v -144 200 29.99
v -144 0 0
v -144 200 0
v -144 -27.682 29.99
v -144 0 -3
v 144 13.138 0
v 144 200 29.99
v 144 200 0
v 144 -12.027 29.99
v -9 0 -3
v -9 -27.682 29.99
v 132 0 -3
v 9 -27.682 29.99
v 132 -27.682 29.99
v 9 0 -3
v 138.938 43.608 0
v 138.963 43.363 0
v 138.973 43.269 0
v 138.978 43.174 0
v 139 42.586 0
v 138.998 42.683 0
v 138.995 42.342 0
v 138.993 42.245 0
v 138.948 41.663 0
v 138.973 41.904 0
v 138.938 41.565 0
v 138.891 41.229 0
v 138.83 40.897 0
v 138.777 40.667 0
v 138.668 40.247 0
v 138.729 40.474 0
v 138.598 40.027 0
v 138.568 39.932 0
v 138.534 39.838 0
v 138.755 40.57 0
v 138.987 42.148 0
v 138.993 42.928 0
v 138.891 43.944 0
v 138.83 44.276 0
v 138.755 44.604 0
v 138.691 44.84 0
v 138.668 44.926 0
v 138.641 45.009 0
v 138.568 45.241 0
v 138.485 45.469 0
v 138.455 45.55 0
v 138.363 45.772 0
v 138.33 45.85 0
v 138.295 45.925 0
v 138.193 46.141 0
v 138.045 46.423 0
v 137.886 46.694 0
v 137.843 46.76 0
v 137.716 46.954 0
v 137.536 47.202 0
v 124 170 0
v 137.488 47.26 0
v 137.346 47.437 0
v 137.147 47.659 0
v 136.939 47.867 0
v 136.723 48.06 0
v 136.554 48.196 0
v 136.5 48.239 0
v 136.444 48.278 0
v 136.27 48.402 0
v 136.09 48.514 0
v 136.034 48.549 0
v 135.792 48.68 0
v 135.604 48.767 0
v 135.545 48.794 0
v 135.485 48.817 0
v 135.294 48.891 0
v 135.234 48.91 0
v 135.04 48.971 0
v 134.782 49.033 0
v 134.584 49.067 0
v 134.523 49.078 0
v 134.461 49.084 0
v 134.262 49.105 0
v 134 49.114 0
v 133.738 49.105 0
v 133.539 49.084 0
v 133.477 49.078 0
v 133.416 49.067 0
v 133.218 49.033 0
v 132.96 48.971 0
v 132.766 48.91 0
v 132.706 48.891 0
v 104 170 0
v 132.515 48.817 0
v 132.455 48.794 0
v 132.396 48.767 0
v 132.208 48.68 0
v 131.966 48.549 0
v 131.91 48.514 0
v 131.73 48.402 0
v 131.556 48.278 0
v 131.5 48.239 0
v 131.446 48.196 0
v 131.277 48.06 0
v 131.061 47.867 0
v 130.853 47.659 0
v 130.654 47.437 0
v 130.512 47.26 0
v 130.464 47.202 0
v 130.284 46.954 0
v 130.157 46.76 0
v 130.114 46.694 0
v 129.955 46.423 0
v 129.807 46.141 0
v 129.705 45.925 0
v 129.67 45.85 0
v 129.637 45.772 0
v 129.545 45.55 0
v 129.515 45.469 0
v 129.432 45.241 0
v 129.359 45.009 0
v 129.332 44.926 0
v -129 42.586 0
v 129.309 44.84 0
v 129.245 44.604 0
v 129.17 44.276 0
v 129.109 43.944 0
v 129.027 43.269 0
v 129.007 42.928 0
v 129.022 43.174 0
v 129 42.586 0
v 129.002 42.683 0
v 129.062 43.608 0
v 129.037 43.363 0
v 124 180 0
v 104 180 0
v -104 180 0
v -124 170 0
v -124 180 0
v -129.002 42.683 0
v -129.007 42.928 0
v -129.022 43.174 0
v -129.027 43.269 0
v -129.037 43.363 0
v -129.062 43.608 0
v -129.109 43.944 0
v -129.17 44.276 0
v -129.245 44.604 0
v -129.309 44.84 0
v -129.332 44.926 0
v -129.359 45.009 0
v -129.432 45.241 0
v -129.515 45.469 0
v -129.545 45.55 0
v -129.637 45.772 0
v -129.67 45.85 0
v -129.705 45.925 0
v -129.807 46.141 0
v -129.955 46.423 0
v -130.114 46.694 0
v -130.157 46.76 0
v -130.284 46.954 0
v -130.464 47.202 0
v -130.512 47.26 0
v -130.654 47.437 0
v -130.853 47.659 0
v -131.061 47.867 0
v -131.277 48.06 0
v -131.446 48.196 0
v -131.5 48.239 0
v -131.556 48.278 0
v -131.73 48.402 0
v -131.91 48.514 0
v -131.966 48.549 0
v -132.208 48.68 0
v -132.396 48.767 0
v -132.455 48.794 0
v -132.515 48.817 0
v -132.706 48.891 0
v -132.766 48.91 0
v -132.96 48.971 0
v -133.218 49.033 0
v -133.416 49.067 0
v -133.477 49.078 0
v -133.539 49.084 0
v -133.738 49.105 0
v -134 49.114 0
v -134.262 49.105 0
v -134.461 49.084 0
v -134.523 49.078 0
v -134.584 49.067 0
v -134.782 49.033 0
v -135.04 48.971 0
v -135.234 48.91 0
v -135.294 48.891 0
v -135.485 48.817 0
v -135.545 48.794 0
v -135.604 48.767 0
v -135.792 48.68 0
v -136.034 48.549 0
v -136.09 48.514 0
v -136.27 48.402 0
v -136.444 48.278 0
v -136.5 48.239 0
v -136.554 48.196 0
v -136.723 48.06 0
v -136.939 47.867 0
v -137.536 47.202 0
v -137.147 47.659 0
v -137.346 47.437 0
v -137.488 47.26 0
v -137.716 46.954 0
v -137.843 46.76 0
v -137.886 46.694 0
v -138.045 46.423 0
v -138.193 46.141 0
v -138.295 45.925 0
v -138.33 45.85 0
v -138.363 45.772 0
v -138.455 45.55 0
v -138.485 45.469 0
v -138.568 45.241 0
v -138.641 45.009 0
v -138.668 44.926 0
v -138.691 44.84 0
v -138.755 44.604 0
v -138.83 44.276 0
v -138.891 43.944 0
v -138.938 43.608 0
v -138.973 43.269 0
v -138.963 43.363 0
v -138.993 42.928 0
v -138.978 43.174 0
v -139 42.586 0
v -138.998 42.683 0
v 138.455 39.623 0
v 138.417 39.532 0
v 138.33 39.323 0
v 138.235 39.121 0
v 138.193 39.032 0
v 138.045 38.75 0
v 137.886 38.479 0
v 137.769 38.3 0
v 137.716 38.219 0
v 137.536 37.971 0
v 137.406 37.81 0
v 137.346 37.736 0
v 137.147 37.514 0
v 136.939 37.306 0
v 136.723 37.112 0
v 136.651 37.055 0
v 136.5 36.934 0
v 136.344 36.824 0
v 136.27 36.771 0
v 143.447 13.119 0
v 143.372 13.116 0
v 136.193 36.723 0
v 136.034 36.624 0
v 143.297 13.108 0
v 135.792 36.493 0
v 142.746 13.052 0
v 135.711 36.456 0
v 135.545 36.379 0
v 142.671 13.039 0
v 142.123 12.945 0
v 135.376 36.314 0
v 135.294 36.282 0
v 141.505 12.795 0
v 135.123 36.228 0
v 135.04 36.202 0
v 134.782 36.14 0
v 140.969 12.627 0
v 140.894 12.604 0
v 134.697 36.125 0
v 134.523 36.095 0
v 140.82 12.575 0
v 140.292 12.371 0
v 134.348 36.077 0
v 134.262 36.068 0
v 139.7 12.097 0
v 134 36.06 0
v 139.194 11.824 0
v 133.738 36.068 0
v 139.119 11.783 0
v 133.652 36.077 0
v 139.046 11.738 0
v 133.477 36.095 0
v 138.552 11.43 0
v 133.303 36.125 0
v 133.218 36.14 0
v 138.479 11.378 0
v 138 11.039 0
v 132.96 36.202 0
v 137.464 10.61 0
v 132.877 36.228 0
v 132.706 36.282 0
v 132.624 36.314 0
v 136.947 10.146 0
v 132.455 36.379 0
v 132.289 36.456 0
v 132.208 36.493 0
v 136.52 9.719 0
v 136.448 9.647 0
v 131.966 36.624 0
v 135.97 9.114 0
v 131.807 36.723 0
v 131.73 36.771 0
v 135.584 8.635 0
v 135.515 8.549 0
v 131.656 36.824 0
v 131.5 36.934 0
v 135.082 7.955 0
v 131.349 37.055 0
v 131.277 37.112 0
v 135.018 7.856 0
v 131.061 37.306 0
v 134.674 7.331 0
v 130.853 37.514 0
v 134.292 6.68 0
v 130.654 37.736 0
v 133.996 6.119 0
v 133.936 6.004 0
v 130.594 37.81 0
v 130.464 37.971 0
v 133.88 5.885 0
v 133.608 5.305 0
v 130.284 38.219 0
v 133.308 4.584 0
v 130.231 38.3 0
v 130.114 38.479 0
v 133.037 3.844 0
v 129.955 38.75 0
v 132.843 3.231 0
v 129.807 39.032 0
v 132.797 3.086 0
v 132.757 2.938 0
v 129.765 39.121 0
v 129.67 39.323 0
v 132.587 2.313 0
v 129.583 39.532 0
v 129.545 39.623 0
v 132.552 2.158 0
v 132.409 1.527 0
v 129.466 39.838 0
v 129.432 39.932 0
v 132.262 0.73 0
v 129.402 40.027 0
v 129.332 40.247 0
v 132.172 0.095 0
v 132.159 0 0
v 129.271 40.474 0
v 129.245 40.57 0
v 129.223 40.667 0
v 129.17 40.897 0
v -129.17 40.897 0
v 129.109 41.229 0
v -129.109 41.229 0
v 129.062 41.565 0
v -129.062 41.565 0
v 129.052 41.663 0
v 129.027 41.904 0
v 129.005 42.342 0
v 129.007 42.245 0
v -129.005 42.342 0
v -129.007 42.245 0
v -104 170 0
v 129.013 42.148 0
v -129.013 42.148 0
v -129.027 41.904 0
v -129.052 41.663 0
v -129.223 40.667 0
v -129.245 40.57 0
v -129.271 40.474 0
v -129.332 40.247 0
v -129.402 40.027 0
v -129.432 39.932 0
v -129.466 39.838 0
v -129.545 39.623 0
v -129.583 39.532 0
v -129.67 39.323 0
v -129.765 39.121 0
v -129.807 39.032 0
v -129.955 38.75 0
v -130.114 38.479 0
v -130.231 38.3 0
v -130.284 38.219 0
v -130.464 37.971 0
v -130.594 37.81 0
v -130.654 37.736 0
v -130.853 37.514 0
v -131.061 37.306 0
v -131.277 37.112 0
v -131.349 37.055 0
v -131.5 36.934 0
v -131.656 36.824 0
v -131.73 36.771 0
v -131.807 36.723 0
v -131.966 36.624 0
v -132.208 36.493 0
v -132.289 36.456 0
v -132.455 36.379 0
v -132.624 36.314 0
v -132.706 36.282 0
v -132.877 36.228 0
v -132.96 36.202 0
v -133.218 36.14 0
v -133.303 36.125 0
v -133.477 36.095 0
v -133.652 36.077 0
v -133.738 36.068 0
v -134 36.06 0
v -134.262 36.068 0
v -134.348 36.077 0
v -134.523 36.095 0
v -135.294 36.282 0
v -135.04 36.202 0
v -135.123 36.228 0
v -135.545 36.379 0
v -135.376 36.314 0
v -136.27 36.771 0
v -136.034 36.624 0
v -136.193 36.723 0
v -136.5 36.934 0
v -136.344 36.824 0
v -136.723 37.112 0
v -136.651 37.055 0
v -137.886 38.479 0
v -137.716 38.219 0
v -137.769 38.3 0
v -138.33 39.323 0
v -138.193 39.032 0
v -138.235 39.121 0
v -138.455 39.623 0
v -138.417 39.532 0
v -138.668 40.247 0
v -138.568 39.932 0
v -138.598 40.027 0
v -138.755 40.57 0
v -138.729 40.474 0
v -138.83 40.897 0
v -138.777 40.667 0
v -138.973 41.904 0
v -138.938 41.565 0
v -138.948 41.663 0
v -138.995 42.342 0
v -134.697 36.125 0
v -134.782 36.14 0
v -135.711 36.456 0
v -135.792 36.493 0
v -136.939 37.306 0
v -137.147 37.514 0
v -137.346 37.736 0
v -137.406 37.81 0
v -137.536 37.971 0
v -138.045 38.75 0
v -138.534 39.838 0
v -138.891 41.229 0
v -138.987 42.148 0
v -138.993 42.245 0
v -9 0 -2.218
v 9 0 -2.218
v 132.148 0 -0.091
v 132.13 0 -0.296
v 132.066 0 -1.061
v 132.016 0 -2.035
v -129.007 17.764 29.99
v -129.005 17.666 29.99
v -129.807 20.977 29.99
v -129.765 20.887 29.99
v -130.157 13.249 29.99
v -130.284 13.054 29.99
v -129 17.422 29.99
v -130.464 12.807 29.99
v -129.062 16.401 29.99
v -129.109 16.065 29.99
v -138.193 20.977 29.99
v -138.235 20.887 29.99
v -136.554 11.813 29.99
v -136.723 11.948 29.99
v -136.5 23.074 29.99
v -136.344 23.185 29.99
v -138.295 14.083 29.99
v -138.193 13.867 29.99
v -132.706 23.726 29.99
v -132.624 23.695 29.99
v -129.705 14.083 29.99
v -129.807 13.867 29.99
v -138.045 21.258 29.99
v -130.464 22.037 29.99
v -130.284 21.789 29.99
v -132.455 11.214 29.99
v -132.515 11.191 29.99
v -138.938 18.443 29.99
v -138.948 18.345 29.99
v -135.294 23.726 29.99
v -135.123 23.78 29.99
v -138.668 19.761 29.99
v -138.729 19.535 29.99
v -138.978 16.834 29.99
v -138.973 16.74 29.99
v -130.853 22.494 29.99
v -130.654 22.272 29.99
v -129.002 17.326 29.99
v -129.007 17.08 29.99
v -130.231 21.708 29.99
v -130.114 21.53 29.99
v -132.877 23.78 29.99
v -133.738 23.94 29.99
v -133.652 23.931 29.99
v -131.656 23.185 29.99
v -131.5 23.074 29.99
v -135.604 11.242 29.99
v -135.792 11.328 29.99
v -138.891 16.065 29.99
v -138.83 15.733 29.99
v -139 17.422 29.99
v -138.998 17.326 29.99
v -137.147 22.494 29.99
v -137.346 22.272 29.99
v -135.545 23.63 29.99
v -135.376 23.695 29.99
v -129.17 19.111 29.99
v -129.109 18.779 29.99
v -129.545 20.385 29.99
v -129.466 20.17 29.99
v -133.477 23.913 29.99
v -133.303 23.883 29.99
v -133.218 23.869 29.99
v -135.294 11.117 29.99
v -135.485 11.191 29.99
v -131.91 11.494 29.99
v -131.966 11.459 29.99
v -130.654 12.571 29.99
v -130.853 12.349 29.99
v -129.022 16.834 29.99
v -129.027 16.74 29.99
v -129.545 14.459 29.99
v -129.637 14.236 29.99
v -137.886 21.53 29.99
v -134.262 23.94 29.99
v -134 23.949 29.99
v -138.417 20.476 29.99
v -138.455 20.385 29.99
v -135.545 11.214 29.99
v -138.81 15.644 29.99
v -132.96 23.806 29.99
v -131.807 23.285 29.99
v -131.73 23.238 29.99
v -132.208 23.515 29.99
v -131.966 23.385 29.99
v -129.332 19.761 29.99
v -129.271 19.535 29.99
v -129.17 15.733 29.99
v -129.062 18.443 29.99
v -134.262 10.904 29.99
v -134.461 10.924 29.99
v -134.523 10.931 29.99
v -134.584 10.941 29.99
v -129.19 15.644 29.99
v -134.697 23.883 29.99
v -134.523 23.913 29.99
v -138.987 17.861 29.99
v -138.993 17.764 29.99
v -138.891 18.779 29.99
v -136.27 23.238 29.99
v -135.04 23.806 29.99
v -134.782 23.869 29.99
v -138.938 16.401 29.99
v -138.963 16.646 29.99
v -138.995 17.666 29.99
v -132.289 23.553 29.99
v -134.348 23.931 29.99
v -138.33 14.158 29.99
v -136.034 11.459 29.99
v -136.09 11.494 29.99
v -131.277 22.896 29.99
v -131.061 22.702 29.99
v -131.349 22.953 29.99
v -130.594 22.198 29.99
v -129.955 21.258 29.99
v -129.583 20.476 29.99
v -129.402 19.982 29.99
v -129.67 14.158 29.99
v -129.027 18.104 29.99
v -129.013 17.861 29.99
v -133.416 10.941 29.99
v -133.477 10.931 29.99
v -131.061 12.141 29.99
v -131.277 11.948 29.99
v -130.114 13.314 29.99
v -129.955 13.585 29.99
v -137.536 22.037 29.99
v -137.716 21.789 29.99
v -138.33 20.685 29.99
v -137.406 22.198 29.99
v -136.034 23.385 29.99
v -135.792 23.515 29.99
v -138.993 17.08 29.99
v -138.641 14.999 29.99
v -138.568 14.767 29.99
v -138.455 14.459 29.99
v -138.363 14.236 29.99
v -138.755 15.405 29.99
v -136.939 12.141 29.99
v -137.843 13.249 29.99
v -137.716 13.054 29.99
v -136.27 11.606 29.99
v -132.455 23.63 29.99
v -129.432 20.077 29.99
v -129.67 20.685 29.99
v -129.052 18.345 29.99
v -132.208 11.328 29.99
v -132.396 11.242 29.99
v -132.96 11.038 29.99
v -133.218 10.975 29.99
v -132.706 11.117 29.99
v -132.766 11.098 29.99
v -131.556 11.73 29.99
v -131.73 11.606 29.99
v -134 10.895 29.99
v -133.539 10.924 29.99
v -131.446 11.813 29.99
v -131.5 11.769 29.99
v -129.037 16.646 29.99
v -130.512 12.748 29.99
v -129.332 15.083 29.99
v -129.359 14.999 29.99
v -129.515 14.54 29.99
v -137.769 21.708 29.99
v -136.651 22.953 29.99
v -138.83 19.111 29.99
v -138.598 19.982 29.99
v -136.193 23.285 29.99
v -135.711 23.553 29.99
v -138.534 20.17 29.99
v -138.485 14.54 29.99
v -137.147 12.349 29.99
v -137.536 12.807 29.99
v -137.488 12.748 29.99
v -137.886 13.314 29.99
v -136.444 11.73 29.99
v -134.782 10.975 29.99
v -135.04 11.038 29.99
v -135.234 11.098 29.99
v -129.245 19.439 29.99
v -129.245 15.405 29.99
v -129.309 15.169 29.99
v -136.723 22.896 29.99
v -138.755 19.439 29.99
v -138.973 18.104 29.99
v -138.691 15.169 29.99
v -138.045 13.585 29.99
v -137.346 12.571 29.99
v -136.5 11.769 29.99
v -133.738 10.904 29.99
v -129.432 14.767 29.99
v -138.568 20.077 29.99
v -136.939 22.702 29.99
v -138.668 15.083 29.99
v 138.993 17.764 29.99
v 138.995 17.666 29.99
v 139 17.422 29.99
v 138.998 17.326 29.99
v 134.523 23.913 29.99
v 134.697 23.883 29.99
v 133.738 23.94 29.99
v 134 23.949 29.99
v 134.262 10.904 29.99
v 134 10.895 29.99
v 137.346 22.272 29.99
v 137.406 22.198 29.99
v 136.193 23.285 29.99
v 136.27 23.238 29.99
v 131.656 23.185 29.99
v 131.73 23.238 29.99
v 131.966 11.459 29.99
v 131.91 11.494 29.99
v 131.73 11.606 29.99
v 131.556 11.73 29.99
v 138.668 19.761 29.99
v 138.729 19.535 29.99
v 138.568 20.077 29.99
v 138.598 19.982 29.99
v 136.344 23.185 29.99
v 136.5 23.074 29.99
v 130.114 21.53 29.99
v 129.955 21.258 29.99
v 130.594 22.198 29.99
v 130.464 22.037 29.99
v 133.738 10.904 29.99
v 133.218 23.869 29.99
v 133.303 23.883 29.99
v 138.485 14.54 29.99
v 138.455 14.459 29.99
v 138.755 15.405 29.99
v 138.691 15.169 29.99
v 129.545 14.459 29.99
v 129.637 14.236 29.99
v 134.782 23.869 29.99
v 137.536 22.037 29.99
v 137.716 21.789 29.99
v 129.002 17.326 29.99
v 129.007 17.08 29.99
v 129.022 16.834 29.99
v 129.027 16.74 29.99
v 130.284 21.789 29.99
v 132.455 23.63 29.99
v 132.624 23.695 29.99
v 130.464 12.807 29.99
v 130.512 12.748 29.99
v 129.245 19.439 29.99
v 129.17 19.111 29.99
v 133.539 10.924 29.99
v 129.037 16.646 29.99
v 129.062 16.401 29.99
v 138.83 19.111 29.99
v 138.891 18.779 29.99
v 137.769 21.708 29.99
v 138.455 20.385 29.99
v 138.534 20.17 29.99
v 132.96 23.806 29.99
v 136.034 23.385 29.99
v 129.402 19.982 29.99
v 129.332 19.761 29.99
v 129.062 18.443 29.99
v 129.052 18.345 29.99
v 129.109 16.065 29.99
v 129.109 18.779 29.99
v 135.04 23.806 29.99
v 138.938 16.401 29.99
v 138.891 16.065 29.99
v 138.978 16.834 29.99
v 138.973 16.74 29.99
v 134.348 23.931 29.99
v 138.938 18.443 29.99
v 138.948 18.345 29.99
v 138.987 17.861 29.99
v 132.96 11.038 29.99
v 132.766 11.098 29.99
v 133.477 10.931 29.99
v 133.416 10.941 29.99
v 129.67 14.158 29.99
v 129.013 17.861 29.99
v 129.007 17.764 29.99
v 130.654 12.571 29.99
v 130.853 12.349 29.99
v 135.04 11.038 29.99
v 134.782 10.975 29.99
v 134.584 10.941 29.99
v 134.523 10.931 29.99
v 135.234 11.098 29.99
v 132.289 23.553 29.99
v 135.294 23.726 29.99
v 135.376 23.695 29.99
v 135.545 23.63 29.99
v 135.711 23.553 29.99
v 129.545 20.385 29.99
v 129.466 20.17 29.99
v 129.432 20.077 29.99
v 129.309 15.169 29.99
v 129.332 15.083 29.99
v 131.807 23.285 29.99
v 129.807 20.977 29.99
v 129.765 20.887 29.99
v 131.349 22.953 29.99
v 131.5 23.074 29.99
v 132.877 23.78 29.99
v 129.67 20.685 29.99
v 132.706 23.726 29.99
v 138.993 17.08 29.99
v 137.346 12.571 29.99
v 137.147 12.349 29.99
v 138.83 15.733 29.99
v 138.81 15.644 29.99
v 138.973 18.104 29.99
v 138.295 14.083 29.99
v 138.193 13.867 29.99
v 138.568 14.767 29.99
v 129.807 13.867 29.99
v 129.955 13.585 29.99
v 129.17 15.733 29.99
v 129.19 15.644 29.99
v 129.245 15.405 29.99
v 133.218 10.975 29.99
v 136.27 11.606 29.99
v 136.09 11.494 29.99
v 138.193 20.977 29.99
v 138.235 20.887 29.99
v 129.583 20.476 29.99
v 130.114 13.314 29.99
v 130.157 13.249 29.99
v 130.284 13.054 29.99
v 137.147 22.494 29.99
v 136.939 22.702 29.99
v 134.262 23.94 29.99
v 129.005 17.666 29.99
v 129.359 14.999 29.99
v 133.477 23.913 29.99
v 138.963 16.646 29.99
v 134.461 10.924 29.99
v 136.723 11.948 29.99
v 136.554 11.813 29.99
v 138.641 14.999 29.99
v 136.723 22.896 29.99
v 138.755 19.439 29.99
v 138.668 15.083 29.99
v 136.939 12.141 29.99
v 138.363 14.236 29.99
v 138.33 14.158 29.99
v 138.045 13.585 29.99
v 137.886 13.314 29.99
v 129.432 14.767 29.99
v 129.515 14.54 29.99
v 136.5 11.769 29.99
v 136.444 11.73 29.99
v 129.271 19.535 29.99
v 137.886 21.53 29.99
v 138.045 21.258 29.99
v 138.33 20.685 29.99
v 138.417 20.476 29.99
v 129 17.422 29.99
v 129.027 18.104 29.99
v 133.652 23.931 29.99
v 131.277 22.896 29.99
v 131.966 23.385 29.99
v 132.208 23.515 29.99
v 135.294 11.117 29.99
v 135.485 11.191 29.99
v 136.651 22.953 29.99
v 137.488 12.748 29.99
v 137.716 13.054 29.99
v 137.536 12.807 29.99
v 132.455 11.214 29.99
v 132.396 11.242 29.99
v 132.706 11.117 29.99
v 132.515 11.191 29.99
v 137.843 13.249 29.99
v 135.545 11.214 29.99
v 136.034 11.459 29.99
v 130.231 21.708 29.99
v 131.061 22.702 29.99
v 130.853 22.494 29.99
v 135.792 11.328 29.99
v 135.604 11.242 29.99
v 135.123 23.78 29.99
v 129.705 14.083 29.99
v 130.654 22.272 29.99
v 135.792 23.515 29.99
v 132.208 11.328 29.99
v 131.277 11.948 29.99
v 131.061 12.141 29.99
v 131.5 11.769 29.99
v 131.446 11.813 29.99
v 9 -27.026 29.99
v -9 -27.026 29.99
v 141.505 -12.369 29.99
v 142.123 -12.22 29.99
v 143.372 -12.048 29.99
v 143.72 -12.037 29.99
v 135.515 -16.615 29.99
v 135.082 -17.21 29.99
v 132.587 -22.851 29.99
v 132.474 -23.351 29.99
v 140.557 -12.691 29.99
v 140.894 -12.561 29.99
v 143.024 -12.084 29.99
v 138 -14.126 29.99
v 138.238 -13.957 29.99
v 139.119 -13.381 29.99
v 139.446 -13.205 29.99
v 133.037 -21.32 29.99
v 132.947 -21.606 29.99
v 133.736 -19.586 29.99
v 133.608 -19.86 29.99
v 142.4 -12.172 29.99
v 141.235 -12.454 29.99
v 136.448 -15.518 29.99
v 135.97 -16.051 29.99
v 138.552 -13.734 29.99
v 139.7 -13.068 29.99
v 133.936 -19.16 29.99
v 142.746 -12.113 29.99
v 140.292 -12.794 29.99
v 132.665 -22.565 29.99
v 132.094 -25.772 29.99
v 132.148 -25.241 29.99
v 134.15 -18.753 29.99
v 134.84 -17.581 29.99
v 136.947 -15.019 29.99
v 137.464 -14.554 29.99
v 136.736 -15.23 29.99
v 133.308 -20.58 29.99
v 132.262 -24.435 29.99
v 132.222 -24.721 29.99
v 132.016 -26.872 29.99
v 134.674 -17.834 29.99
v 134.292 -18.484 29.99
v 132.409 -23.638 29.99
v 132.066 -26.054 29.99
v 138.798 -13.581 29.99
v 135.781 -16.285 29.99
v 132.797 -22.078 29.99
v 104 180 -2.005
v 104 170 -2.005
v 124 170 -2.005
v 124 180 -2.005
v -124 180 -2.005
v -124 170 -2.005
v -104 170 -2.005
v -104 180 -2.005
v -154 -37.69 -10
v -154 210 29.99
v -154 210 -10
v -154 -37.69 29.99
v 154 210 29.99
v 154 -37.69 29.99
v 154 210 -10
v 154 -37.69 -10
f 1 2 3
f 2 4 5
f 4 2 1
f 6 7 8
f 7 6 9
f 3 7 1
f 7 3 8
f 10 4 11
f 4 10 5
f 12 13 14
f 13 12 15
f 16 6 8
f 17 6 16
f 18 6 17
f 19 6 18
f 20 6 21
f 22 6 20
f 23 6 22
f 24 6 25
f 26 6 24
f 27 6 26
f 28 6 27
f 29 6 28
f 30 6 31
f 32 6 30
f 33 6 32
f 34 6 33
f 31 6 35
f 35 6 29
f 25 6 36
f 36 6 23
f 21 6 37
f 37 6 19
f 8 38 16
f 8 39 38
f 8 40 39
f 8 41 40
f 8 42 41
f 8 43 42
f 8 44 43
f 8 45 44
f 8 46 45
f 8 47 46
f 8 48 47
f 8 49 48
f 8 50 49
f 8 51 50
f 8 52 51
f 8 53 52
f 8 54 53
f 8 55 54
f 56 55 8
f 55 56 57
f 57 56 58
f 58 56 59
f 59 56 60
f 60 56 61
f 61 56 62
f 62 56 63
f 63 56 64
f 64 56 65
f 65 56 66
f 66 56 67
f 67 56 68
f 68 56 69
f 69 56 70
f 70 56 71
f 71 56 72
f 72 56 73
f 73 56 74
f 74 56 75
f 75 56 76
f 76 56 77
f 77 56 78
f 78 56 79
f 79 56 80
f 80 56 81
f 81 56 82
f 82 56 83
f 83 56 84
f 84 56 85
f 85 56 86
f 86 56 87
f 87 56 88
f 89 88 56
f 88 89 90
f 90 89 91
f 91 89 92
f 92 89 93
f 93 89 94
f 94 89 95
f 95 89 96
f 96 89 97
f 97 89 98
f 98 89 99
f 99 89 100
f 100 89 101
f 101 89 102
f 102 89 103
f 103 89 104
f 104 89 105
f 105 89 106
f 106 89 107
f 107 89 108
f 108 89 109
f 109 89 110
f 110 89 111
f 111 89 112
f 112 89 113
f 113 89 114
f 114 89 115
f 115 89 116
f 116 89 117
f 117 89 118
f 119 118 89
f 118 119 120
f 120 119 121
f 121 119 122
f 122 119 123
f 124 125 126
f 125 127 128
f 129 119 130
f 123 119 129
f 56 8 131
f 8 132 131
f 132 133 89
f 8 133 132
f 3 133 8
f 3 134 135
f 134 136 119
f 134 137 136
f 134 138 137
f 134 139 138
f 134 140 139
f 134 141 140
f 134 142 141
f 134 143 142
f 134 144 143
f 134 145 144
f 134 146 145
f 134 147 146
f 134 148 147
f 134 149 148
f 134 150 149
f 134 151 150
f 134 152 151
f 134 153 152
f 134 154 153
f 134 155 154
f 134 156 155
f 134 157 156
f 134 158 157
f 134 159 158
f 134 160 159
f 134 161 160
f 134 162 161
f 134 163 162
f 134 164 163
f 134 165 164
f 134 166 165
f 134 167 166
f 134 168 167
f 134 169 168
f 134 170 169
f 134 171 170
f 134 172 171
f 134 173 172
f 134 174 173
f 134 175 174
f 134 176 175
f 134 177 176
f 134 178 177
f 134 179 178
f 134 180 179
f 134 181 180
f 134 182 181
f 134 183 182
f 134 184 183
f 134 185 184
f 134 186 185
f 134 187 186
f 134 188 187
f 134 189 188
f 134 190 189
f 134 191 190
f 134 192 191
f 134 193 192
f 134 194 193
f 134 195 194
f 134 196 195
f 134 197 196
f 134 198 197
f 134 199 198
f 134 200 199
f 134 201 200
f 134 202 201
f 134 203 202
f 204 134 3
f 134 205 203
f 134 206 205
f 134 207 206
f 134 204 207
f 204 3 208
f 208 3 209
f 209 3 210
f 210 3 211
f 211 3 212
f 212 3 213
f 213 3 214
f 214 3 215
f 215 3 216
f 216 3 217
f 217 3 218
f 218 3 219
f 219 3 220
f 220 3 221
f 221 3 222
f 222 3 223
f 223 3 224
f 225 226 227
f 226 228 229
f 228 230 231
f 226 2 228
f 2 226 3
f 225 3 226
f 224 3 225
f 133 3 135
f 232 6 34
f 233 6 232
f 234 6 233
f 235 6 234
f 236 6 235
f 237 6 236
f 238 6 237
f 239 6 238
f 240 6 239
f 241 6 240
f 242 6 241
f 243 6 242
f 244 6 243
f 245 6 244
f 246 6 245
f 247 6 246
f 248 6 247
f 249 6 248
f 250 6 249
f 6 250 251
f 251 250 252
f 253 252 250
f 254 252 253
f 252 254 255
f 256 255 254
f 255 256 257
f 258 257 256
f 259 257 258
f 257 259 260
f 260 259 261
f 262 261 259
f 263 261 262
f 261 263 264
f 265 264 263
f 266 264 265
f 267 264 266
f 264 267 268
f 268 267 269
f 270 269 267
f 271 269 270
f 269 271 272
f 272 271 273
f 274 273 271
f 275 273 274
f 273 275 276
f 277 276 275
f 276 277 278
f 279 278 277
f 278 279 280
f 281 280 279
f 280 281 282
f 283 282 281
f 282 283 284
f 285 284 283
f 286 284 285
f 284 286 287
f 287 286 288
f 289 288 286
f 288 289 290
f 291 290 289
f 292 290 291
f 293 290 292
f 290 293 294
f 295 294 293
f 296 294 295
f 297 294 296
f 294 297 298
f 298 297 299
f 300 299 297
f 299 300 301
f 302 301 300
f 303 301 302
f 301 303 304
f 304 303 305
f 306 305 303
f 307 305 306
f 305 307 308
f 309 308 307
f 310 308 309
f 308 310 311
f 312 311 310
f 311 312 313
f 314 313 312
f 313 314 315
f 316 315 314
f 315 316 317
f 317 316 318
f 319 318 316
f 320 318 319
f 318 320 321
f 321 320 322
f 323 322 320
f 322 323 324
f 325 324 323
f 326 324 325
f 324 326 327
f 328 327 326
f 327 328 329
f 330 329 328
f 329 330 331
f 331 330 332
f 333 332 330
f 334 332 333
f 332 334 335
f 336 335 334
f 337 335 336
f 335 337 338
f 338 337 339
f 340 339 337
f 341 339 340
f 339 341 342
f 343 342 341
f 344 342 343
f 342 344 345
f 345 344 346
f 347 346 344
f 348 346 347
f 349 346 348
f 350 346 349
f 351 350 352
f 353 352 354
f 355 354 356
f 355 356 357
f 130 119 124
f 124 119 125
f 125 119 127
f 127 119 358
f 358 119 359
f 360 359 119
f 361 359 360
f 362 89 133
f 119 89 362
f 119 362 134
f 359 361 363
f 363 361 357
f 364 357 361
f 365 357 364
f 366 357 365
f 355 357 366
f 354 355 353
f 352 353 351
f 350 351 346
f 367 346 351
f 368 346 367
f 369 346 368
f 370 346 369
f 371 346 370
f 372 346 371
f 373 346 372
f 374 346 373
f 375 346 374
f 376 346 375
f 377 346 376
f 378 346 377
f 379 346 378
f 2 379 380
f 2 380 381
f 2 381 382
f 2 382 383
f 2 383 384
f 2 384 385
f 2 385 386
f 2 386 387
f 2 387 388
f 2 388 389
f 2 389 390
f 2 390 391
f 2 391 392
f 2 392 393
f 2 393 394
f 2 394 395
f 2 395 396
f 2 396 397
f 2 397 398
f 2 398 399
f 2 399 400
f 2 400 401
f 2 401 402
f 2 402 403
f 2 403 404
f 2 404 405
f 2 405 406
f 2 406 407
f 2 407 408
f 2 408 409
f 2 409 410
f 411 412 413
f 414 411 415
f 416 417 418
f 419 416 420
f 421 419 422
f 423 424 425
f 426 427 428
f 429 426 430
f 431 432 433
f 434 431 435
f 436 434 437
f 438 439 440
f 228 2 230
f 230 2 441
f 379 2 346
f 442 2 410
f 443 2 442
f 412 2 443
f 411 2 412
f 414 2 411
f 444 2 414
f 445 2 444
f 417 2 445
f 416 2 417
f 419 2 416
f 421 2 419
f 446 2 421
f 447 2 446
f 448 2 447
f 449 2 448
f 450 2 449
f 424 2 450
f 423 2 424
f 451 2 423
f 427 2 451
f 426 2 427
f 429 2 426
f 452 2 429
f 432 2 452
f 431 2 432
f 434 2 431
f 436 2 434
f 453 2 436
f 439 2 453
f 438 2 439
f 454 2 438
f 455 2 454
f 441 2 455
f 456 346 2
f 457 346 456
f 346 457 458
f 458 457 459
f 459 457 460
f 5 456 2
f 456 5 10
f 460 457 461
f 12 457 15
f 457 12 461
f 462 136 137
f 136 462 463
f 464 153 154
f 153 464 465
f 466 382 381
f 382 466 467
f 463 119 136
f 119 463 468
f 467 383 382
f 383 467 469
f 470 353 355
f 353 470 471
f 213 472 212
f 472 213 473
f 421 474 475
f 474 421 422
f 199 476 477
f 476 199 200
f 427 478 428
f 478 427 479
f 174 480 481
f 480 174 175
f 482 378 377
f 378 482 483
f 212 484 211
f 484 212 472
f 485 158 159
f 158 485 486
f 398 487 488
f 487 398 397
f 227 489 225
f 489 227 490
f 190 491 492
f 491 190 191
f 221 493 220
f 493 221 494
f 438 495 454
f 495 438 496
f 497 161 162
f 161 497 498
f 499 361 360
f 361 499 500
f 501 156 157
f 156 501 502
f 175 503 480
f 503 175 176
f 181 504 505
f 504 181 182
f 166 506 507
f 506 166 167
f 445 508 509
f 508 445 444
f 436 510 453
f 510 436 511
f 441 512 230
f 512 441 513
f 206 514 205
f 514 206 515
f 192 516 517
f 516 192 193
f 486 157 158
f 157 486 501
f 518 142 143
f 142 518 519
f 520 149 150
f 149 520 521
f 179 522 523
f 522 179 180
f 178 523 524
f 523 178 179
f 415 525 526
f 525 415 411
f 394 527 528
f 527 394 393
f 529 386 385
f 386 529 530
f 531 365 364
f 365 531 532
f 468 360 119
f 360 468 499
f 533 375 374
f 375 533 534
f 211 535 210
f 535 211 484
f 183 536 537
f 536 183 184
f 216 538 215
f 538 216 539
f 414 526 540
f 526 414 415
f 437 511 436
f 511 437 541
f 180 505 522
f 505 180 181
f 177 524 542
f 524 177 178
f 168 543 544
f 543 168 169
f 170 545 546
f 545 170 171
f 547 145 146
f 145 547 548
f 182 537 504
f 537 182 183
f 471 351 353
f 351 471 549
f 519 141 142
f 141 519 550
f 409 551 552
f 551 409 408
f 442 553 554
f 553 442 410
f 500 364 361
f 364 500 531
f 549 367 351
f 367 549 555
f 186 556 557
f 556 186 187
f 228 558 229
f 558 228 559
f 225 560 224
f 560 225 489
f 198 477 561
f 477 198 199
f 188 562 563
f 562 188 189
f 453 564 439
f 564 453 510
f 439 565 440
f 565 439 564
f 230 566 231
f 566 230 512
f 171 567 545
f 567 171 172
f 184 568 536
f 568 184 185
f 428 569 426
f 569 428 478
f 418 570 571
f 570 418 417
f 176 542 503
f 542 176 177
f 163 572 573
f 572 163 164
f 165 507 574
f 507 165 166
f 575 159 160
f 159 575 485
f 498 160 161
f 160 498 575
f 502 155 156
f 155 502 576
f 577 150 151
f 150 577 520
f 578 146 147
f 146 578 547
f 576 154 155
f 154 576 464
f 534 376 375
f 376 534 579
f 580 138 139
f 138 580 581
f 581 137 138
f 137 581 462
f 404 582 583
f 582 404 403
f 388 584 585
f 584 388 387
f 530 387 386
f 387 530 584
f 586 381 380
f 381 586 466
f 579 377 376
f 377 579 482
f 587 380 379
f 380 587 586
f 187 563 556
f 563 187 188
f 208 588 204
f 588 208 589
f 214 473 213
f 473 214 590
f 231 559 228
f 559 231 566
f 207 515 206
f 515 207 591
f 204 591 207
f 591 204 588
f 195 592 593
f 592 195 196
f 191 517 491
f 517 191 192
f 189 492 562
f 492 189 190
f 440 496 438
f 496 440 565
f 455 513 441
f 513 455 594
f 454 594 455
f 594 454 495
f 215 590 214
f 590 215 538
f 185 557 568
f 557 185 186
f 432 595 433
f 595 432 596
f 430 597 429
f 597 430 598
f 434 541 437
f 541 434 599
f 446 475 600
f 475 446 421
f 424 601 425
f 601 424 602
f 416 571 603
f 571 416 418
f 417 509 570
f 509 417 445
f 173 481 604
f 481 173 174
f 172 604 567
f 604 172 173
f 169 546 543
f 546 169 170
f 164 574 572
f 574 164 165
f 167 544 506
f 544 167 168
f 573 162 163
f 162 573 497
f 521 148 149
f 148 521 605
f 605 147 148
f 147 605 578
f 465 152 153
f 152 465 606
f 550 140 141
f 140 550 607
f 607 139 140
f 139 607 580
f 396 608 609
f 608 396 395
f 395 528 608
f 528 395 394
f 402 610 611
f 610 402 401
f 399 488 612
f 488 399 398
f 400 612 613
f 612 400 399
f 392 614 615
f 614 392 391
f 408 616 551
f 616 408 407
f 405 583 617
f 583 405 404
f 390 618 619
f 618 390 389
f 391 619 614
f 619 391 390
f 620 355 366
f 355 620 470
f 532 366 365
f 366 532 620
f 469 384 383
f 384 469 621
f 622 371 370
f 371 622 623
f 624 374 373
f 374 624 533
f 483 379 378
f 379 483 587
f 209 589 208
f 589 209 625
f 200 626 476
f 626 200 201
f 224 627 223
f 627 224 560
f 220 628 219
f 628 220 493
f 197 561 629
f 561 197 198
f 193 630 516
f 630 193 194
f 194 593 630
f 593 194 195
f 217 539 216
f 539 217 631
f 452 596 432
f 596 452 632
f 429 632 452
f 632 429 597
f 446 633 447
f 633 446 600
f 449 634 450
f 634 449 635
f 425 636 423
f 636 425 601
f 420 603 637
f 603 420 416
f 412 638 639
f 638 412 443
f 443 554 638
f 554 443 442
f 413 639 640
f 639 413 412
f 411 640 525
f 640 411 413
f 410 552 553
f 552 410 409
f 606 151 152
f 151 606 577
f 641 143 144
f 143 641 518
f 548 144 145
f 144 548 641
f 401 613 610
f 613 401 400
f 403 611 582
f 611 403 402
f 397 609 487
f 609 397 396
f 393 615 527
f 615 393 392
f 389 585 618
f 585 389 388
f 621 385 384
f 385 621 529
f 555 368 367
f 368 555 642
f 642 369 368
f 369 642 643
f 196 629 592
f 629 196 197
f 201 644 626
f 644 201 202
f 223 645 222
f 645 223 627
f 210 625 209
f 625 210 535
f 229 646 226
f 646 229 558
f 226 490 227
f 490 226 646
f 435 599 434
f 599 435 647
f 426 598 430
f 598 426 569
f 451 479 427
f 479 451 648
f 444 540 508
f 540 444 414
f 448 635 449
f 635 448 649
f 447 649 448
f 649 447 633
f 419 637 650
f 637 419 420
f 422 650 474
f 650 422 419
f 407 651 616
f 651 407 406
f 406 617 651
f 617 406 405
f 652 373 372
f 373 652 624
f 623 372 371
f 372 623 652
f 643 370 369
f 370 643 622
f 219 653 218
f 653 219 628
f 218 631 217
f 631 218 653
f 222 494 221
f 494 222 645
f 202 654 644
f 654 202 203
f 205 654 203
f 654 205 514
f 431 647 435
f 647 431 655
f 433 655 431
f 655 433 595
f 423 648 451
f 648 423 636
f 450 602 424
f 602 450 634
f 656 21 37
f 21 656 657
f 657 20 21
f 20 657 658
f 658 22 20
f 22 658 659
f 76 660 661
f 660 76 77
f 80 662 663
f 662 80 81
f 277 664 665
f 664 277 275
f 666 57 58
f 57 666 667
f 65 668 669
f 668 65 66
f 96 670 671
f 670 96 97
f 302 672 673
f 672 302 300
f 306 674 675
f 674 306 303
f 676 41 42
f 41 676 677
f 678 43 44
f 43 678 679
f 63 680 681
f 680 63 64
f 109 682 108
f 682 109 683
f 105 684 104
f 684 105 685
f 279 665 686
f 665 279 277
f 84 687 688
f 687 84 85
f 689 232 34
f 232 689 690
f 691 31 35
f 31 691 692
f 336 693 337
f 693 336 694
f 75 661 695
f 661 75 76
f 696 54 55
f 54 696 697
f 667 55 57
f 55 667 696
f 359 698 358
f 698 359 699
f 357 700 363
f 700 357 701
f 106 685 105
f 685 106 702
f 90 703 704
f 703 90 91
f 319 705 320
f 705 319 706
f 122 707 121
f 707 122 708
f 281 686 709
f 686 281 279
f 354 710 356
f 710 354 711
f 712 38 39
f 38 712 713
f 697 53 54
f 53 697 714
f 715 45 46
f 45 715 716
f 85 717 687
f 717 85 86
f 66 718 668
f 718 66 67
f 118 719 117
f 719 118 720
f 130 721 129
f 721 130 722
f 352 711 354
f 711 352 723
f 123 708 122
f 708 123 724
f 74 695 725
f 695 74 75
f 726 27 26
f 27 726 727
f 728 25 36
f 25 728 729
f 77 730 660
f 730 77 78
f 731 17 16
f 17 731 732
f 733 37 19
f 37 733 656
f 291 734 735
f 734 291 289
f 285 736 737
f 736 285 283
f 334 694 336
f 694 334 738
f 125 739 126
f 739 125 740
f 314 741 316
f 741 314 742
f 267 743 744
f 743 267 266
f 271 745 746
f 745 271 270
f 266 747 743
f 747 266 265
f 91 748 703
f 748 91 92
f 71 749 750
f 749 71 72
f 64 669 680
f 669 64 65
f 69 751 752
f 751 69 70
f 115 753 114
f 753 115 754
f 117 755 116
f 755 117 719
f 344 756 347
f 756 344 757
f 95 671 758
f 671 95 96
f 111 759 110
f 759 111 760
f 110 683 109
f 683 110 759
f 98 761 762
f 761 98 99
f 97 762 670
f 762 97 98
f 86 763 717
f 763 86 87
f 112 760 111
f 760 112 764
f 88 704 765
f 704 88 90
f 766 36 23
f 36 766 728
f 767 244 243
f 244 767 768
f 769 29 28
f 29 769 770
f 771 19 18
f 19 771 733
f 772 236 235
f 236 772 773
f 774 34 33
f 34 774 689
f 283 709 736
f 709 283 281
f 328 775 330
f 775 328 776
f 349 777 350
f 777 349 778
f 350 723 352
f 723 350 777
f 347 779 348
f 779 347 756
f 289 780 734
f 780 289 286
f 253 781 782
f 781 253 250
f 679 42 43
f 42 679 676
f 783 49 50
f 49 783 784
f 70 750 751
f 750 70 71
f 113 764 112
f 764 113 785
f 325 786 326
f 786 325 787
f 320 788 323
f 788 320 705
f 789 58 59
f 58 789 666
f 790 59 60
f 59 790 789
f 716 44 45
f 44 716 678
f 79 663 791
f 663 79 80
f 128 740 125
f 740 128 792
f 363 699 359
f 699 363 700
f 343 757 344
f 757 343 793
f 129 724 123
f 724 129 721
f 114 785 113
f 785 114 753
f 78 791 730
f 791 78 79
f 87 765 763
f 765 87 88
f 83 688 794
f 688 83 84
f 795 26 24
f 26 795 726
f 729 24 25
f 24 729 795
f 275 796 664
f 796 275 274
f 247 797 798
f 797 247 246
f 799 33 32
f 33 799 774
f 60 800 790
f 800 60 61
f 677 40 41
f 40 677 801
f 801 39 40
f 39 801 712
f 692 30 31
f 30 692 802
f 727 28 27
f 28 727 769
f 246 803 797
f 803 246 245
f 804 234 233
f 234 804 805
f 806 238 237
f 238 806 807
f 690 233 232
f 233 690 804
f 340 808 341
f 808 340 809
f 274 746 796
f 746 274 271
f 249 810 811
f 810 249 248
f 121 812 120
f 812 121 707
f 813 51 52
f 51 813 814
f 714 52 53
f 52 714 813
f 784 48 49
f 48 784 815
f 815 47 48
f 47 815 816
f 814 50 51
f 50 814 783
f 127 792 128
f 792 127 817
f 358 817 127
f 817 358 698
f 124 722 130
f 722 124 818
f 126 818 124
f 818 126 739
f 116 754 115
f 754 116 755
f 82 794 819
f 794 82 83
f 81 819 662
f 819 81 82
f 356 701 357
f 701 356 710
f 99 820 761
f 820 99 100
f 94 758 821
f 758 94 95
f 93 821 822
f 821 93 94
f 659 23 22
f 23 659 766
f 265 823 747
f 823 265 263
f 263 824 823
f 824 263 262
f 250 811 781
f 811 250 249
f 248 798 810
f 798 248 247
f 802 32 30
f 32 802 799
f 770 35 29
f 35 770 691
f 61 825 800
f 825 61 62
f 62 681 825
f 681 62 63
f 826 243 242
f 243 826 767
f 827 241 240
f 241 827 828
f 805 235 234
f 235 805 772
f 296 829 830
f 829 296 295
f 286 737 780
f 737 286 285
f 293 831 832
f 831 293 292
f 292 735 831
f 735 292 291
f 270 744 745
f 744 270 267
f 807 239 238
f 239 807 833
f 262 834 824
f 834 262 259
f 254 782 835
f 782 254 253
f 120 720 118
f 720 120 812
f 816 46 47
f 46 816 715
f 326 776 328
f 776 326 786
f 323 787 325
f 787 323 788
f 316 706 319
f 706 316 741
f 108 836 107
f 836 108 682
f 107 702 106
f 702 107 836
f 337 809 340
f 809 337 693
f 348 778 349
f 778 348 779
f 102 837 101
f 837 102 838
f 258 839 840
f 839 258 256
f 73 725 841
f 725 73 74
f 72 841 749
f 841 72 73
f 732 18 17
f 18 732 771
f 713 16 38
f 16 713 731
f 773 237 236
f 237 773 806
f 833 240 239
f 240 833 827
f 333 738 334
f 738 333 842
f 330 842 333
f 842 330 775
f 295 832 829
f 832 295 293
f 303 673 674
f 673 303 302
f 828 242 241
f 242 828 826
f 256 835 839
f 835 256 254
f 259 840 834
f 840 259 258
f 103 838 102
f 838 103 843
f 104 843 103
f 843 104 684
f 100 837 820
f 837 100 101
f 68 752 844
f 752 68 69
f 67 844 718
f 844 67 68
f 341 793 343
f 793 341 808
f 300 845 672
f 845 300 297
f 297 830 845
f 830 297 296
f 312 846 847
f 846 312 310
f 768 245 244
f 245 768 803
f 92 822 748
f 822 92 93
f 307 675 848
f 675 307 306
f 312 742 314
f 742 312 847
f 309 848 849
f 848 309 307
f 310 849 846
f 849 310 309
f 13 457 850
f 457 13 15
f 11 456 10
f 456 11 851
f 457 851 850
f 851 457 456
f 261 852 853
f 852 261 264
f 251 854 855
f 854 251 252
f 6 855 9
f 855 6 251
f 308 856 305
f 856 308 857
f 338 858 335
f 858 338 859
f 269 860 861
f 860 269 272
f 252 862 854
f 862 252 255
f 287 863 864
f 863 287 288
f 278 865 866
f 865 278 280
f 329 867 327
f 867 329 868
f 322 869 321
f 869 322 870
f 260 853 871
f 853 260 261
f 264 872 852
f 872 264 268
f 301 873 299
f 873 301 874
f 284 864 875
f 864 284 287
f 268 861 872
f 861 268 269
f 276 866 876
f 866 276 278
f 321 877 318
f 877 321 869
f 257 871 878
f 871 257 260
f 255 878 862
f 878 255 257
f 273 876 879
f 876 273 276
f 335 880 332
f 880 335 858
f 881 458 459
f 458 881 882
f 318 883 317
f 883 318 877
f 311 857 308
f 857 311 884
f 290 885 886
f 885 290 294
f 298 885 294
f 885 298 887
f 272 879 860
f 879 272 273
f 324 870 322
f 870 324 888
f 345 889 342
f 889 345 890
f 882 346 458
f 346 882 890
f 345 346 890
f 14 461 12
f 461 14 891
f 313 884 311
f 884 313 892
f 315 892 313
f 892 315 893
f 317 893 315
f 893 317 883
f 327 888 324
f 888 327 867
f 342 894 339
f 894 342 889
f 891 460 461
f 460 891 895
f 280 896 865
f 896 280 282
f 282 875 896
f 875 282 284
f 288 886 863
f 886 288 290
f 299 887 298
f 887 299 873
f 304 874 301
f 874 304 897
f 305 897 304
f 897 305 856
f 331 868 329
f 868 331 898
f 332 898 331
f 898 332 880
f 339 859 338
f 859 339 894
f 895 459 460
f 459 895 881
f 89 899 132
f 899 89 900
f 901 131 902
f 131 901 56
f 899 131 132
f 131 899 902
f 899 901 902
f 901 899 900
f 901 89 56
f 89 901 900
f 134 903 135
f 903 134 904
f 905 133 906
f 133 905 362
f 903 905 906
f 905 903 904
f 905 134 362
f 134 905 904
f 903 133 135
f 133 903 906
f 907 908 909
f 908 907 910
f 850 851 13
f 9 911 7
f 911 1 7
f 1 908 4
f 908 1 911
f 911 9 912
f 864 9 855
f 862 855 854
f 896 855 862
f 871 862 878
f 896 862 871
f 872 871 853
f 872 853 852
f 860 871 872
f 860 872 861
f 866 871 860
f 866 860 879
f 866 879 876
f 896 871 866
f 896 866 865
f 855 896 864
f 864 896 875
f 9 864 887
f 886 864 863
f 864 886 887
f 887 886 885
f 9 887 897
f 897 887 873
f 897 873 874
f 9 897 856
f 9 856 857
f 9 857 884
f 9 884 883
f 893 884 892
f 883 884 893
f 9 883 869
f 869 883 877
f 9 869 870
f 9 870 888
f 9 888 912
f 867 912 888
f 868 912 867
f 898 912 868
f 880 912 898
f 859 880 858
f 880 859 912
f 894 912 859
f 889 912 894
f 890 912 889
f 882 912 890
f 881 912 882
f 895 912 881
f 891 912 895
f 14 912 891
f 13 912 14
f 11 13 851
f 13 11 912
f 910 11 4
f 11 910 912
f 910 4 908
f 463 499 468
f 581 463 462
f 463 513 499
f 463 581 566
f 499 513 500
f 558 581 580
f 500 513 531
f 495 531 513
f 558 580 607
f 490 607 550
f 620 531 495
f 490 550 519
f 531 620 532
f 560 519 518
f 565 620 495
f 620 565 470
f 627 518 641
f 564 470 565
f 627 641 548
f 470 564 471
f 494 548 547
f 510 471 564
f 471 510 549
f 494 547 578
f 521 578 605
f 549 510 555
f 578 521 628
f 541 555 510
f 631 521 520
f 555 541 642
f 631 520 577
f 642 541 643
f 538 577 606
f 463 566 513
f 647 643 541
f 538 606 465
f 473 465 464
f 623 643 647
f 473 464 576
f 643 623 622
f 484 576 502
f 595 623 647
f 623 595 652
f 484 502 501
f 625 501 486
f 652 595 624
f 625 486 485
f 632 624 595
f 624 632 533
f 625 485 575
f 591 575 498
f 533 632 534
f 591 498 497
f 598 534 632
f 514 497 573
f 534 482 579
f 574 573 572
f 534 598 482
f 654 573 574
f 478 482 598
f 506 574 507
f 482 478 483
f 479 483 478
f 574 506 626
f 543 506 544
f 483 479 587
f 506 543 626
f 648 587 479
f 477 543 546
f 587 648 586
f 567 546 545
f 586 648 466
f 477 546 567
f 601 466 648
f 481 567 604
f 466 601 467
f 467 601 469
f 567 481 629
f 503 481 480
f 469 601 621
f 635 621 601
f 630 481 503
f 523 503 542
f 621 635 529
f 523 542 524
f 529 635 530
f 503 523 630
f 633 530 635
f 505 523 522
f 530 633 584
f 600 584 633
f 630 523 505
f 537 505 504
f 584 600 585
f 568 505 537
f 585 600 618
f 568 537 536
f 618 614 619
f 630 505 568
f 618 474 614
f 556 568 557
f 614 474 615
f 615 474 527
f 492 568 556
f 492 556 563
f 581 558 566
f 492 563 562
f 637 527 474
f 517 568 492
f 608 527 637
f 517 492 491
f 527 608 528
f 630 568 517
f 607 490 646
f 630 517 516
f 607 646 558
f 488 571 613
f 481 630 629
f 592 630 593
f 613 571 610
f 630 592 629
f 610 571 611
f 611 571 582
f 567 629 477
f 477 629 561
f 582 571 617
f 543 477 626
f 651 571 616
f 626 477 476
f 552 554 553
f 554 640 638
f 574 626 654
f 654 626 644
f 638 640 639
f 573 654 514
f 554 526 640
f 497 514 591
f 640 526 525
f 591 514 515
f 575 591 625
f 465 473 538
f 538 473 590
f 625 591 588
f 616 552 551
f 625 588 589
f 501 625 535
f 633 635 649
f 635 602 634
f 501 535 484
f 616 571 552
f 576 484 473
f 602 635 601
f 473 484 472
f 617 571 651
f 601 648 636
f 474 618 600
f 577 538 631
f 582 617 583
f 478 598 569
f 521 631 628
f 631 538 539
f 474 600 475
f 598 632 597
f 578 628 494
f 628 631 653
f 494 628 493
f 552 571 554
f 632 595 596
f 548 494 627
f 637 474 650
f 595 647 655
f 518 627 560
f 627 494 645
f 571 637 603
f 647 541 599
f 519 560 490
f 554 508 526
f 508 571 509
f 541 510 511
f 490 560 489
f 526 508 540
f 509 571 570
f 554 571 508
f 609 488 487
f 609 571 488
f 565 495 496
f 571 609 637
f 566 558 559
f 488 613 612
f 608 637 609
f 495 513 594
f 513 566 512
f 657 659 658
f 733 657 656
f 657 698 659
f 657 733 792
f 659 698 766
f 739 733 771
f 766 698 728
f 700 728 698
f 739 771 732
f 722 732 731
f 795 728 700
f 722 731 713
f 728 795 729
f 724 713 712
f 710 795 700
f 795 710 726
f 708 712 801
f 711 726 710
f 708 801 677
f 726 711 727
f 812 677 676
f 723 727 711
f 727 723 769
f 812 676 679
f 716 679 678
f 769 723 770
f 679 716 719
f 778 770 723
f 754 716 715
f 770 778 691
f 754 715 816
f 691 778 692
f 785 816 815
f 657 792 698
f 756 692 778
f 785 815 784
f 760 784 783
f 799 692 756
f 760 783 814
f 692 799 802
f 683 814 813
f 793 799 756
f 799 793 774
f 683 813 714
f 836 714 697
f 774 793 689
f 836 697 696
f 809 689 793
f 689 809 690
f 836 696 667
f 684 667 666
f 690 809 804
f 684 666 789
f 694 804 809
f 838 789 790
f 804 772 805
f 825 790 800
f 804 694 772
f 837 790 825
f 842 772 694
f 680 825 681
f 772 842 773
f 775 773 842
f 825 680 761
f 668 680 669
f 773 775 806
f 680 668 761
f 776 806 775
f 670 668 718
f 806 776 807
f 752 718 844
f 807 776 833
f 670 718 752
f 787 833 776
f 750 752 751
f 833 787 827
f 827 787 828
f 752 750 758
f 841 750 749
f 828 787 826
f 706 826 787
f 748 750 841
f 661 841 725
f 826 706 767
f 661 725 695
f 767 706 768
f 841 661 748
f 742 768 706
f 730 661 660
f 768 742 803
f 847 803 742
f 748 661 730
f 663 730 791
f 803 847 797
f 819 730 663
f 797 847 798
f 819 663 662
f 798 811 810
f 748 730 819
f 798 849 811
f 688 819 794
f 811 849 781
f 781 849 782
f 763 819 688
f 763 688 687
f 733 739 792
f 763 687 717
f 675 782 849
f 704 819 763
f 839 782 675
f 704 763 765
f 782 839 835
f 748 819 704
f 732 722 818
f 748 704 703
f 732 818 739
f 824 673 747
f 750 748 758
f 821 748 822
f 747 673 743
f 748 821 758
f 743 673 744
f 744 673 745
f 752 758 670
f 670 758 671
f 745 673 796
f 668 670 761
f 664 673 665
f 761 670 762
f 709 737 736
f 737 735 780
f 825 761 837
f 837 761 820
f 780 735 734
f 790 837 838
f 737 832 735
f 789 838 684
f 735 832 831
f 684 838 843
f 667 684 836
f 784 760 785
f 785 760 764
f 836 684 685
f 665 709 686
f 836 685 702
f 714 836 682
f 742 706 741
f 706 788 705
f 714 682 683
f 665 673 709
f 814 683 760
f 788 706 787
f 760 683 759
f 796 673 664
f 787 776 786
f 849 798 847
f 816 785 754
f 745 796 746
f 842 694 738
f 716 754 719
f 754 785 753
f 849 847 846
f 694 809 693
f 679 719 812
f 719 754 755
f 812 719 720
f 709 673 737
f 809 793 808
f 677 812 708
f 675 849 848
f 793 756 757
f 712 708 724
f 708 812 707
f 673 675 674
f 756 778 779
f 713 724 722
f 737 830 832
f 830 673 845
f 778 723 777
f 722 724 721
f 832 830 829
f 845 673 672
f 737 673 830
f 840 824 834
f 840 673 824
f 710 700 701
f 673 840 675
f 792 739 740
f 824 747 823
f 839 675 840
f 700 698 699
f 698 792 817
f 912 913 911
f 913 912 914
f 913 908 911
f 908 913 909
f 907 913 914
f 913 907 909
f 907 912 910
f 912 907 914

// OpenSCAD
$fa=3;
$fs=0.05;
p = 0.01;
p2 = 2*p;

acryl_h = 3;

a = 288;
b = 200;
h = 30;
angle = 40;

hole_d = 10;
hole_dx = 10;
hole_x = a/2 - hole_dx;
hole_dy = 30;
hole_y = hole_dy;

flex_a = 18;
flex_b = 0.5;
cable_a = 6;
cable_b = 6;
cable_r = 12;
//cable_x = (a-cable_a)/2+p;
cable_x = a/2;

holder_a = 20;
holder_b = 10;
holder_h = 2;
holder_x = (a-holder_a)/2 - 20;
holder_y = (b-holder_b/2) - 20;

top_h = acryl_h + h;
top_b = top_h * tan(angle);

outer_border = 10;
outer_a = a + 2 * outer_border;
outer_b = b + top_b + 2 * outer_border;
outer_h = h + outer_border - p;

module form()  {
    difference() {
        translate([0, 0, -acryl_h])
        difference() {
            translate([0, -top_b, 0])
            difference() {
                translate([-a/2, 0, 0])
                cube([a, b + top_b, top_h]);
                translate([0, 0, top_h])
                rotate([angle, 0, 0])
                translate([-(a/2+p), -top_b, -top_h*2])
                cube([a+p2, top_b, top_h*2]);
            }
            translate([-(a/2+p), 0, -p])
            cube([a+p2, b+p2, acryl_h+p]);
        }
        //cord holes
        translate([-hole_x, hole_y, h/2])
        rotate([angle, 0, 0])
        cylinder(3*h, d=hole_d, center=true);
        translate([hole_x, hole_y, h/2])
        rotate([angle, 0, 0])
        cylinder(3*h, d=hole_d, center=true);        
        
        //flex
        translate([0, -top_b-p, 0])
        translate([0, 0, h])
        rotate([angle, 0, 0])
        translate([-(flex_a/2), 0, -h*2])
        cube([flex_a, flex_b+p, h*2]);
        
        //cable
        translate([cable_x, -top_b-p, 0])
        //translate([cable_x, -top_b-p+flex_b/cos(angle), 0])
        translate([0, 0, h])
        rotate([angle, 0, 0])
        translate([0, 0, -h*2])
        //cube([cable_a, cable_b+p, h*2]);    
        cylinder(3*h, r=cable_r);
    }    
    //holder
    translate([holder_x, holder_y, -holder_h/2])
    cube([holder_a, holder_b, holder_h+p], center=true);
    translate([-holder_x, holder_y, -holder_h/2])
    cube([holder_a, holder_b, holder_h+p], center=true);   
}

*form();

difference() {    
    translate([-outer_a/2, -(top_b + outer_border), -outer_border])
    cube([outer_a, outer_b, outer_h]);
    form();
}
